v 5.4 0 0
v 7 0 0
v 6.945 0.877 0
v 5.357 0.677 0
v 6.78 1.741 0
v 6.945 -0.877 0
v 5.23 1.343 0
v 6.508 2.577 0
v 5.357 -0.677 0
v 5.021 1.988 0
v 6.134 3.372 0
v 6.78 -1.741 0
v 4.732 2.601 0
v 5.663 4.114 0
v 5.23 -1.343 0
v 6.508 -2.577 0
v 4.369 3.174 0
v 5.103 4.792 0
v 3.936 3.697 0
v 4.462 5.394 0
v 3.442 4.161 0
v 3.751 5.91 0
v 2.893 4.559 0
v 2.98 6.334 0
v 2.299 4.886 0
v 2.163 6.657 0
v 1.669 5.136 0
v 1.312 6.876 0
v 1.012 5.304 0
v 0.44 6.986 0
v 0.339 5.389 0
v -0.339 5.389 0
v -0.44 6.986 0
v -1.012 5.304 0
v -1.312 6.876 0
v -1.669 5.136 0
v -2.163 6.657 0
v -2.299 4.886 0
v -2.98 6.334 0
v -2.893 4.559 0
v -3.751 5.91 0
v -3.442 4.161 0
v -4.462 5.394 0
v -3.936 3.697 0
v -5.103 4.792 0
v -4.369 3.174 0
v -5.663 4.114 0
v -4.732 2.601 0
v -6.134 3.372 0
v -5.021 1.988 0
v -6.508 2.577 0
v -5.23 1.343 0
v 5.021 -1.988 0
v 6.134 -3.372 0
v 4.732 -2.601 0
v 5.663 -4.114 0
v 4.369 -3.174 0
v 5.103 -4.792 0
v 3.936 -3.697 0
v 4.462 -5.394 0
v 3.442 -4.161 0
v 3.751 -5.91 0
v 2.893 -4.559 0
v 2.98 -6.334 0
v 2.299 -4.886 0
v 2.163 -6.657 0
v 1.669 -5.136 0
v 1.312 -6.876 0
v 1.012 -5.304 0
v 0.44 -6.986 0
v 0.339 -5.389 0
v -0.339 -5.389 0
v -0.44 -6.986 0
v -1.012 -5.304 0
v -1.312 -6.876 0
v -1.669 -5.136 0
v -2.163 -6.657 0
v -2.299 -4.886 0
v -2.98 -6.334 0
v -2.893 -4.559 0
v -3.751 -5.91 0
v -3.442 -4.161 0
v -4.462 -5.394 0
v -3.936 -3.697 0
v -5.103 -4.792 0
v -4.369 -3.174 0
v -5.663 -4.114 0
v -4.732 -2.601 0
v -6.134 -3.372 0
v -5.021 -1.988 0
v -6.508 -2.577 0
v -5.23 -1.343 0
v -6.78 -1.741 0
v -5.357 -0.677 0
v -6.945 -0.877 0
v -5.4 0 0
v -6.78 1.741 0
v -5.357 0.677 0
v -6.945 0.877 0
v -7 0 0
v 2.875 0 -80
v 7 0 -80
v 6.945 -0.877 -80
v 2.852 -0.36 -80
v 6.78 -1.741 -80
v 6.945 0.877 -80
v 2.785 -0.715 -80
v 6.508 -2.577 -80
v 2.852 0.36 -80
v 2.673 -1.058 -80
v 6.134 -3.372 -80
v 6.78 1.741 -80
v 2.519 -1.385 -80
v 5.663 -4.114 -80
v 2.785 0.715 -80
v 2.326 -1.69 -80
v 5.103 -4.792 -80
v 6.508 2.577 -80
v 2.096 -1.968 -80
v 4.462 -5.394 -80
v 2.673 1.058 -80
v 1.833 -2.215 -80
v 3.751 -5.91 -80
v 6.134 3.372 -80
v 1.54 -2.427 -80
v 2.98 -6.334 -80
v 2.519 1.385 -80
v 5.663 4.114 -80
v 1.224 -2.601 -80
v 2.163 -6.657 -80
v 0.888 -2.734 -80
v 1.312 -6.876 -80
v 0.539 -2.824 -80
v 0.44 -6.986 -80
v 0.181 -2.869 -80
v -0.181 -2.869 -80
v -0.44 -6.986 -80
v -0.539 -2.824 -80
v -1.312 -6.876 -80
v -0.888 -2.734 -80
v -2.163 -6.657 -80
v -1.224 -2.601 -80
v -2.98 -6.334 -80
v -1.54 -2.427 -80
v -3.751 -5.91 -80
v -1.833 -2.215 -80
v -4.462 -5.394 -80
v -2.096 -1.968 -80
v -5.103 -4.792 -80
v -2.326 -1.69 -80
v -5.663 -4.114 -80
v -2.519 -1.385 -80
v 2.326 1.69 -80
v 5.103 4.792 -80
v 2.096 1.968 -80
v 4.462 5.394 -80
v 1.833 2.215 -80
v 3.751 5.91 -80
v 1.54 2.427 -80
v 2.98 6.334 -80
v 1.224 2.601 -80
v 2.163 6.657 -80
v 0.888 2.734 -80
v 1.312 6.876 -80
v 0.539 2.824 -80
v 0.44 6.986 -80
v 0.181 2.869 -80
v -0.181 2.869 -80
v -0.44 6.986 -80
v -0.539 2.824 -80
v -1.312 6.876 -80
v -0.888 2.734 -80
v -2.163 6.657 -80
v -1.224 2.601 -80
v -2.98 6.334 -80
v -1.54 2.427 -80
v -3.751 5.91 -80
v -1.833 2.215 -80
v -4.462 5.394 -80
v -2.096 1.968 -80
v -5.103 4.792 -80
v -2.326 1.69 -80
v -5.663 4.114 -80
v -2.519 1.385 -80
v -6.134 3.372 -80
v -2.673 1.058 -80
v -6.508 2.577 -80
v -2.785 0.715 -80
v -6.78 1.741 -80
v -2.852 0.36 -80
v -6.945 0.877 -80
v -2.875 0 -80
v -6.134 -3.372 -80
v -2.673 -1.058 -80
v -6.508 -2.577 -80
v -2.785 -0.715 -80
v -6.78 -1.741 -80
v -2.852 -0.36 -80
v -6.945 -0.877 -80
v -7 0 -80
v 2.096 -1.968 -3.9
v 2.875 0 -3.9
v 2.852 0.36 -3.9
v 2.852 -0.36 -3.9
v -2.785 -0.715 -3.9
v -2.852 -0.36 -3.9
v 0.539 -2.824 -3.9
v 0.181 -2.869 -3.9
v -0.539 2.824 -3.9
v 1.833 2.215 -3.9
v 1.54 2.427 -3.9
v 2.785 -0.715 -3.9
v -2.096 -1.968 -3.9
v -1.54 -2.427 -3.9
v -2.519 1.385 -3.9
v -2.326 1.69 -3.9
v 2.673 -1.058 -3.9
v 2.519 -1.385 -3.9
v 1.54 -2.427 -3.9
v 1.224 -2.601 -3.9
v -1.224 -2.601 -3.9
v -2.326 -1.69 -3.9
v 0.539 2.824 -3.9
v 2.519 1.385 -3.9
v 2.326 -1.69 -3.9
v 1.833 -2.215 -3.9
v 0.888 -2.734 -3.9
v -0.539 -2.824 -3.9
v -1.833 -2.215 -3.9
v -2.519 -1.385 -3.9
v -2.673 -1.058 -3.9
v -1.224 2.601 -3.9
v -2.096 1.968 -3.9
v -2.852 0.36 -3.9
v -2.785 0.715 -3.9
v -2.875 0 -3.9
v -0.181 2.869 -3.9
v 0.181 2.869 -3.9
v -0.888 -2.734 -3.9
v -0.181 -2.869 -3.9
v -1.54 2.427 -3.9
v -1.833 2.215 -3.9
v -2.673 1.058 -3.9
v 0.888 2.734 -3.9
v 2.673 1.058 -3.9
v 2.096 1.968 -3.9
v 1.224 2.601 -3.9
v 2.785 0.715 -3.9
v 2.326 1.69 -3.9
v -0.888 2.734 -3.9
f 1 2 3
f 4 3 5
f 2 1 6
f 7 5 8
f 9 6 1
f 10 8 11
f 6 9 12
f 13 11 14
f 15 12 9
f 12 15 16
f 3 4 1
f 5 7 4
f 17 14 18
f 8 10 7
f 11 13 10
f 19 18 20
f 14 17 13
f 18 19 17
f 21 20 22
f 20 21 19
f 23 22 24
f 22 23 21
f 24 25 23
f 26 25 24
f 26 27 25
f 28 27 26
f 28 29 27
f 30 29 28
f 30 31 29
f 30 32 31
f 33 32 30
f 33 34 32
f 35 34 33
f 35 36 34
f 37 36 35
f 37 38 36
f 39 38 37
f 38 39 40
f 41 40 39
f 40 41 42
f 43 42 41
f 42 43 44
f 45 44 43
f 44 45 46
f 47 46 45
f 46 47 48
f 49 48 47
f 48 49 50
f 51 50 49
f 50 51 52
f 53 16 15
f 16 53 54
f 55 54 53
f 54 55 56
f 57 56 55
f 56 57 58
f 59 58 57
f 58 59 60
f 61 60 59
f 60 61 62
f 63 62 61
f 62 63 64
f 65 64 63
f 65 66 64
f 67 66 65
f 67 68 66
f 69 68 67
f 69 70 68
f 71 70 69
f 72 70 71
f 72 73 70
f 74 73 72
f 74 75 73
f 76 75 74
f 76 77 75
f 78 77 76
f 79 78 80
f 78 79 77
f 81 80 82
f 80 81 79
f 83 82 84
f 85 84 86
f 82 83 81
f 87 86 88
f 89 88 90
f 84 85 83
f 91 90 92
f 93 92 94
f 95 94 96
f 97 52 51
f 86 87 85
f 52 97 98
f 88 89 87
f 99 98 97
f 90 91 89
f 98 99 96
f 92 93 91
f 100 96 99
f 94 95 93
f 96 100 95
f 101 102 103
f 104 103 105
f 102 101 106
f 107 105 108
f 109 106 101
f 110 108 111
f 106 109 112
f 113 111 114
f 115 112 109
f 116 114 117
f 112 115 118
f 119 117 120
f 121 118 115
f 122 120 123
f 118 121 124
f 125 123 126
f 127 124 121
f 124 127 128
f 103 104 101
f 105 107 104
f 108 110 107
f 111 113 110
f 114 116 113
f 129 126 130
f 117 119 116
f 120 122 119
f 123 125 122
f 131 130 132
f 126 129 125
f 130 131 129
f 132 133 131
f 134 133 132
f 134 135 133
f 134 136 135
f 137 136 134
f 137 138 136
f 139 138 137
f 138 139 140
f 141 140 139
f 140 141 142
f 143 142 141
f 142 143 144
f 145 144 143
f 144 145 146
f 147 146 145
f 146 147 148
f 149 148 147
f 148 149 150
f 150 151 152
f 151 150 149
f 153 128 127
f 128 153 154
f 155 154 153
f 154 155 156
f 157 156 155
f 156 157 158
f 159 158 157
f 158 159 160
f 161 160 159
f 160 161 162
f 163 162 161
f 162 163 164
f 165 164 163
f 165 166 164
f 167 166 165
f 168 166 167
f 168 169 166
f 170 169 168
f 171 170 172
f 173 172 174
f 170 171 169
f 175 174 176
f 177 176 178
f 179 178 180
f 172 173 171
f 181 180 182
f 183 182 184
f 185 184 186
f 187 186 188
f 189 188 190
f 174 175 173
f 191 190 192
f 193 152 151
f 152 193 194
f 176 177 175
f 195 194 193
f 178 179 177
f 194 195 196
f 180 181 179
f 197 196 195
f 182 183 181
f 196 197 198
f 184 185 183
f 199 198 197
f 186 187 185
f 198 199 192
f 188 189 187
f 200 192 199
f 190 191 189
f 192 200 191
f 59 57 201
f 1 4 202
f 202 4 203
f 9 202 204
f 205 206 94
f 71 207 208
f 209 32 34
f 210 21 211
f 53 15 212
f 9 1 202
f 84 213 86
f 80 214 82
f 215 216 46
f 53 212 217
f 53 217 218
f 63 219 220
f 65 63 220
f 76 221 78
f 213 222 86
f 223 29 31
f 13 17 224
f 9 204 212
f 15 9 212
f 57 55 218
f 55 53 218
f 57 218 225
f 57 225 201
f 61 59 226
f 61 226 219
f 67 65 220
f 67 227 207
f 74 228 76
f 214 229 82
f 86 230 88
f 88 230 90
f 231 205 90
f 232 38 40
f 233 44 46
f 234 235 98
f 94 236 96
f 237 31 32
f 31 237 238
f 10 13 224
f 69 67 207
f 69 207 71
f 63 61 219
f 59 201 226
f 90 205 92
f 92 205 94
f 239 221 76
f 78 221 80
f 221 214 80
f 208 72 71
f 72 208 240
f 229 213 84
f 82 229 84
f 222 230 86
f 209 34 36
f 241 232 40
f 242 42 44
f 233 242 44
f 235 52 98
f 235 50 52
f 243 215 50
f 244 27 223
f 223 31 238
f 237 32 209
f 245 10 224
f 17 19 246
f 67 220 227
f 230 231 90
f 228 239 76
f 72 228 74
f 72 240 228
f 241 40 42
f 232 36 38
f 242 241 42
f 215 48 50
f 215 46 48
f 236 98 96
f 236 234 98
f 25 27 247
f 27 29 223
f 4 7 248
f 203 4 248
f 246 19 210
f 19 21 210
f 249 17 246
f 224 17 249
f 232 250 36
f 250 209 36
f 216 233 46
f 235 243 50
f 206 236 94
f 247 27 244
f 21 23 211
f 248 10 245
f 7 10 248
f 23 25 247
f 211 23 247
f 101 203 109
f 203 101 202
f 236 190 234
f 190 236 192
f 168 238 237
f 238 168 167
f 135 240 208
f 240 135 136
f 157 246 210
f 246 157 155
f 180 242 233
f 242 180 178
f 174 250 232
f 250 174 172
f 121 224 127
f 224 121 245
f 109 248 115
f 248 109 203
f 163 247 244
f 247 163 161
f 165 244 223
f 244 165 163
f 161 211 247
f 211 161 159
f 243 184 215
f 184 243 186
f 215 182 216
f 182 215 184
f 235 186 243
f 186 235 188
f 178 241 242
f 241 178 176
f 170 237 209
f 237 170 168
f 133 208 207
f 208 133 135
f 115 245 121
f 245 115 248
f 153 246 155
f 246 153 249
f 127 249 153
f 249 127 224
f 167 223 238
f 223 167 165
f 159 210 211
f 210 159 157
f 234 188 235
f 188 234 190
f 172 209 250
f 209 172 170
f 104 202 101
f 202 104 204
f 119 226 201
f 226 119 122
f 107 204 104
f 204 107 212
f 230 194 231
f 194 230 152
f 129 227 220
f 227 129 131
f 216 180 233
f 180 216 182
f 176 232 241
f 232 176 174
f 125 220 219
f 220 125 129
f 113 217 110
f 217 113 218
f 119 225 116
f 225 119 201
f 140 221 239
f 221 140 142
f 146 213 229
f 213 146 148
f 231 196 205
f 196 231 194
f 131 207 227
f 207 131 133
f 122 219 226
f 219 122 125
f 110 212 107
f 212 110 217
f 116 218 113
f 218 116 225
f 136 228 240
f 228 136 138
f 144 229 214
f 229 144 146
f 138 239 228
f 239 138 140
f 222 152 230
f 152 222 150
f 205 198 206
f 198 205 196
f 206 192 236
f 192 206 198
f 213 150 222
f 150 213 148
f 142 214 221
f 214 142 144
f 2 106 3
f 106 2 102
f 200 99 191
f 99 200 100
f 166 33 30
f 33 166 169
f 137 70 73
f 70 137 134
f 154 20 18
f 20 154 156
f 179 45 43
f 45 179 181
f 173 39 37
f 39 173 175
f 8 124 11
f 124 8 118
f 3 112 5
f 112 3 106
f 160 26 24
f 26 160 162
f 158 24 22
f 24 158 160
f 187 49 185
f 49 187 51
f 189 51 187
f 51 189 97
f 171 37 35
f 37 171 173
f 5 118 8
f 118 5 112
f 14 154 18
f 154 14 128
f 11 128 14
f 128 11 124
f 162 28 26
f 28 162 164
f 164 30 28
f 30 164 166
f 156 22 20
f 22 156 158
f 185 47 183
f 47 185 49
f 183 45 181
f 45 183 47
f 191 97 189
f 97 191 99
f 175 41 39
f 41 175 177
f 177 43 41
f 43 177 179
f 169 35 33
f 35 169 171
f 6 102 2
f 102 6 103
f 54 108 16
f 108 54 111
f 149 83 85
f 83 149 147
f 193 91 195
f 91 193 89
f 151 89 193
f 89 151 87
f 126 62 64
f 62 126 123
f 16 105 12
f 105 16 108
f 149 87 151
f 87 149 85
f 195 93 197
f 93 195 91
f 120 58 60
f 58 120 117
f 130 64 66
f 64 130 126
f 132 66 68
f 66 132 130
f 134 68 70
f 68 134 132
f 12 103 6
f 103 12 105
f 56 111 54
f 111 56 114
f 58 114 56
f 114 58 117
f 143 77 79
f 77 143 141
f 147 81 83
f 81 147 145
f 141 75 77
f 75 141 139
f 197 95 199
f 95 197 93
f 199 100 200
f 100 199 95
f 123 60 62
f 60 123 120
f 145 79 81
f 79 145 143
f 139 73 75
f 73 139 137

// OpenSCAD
$fn = 50;


difference() {
	union() {
		translate(v = [0, 0, -80.0000000000]) {
			cylinder(h = 80, r = 7.0000000000);
		}
		cylinder(h = 0, r = 10.0000000000);
	}
	union() {
		translate(v = [0, 0, 0]) {
			rotate(a = [0, 0, 0]) {
				difference() {
					union() {
						#translate(v = [0, 0, -80.0000000000]) {
							cylinder(h = 80, r = 2.6000000000);
						}
						#translate(v = [0, 0, -3.9000000000]) {
							cylinder(h = 3.9000000000, r1 = 2.8750000000, r2 = 5.4000000000);
						}
						#translate(v = [0, 0, -80.0000000000]) {
							cylinder(h = 80, r = 2.8750000000);
						}
						#translate(v = [0, 0, -80.0000000000]) {
							cylinder(h = 80, r = 2.6000000000);
						}
					}
					union();
				}
			}
		}
	}
}
